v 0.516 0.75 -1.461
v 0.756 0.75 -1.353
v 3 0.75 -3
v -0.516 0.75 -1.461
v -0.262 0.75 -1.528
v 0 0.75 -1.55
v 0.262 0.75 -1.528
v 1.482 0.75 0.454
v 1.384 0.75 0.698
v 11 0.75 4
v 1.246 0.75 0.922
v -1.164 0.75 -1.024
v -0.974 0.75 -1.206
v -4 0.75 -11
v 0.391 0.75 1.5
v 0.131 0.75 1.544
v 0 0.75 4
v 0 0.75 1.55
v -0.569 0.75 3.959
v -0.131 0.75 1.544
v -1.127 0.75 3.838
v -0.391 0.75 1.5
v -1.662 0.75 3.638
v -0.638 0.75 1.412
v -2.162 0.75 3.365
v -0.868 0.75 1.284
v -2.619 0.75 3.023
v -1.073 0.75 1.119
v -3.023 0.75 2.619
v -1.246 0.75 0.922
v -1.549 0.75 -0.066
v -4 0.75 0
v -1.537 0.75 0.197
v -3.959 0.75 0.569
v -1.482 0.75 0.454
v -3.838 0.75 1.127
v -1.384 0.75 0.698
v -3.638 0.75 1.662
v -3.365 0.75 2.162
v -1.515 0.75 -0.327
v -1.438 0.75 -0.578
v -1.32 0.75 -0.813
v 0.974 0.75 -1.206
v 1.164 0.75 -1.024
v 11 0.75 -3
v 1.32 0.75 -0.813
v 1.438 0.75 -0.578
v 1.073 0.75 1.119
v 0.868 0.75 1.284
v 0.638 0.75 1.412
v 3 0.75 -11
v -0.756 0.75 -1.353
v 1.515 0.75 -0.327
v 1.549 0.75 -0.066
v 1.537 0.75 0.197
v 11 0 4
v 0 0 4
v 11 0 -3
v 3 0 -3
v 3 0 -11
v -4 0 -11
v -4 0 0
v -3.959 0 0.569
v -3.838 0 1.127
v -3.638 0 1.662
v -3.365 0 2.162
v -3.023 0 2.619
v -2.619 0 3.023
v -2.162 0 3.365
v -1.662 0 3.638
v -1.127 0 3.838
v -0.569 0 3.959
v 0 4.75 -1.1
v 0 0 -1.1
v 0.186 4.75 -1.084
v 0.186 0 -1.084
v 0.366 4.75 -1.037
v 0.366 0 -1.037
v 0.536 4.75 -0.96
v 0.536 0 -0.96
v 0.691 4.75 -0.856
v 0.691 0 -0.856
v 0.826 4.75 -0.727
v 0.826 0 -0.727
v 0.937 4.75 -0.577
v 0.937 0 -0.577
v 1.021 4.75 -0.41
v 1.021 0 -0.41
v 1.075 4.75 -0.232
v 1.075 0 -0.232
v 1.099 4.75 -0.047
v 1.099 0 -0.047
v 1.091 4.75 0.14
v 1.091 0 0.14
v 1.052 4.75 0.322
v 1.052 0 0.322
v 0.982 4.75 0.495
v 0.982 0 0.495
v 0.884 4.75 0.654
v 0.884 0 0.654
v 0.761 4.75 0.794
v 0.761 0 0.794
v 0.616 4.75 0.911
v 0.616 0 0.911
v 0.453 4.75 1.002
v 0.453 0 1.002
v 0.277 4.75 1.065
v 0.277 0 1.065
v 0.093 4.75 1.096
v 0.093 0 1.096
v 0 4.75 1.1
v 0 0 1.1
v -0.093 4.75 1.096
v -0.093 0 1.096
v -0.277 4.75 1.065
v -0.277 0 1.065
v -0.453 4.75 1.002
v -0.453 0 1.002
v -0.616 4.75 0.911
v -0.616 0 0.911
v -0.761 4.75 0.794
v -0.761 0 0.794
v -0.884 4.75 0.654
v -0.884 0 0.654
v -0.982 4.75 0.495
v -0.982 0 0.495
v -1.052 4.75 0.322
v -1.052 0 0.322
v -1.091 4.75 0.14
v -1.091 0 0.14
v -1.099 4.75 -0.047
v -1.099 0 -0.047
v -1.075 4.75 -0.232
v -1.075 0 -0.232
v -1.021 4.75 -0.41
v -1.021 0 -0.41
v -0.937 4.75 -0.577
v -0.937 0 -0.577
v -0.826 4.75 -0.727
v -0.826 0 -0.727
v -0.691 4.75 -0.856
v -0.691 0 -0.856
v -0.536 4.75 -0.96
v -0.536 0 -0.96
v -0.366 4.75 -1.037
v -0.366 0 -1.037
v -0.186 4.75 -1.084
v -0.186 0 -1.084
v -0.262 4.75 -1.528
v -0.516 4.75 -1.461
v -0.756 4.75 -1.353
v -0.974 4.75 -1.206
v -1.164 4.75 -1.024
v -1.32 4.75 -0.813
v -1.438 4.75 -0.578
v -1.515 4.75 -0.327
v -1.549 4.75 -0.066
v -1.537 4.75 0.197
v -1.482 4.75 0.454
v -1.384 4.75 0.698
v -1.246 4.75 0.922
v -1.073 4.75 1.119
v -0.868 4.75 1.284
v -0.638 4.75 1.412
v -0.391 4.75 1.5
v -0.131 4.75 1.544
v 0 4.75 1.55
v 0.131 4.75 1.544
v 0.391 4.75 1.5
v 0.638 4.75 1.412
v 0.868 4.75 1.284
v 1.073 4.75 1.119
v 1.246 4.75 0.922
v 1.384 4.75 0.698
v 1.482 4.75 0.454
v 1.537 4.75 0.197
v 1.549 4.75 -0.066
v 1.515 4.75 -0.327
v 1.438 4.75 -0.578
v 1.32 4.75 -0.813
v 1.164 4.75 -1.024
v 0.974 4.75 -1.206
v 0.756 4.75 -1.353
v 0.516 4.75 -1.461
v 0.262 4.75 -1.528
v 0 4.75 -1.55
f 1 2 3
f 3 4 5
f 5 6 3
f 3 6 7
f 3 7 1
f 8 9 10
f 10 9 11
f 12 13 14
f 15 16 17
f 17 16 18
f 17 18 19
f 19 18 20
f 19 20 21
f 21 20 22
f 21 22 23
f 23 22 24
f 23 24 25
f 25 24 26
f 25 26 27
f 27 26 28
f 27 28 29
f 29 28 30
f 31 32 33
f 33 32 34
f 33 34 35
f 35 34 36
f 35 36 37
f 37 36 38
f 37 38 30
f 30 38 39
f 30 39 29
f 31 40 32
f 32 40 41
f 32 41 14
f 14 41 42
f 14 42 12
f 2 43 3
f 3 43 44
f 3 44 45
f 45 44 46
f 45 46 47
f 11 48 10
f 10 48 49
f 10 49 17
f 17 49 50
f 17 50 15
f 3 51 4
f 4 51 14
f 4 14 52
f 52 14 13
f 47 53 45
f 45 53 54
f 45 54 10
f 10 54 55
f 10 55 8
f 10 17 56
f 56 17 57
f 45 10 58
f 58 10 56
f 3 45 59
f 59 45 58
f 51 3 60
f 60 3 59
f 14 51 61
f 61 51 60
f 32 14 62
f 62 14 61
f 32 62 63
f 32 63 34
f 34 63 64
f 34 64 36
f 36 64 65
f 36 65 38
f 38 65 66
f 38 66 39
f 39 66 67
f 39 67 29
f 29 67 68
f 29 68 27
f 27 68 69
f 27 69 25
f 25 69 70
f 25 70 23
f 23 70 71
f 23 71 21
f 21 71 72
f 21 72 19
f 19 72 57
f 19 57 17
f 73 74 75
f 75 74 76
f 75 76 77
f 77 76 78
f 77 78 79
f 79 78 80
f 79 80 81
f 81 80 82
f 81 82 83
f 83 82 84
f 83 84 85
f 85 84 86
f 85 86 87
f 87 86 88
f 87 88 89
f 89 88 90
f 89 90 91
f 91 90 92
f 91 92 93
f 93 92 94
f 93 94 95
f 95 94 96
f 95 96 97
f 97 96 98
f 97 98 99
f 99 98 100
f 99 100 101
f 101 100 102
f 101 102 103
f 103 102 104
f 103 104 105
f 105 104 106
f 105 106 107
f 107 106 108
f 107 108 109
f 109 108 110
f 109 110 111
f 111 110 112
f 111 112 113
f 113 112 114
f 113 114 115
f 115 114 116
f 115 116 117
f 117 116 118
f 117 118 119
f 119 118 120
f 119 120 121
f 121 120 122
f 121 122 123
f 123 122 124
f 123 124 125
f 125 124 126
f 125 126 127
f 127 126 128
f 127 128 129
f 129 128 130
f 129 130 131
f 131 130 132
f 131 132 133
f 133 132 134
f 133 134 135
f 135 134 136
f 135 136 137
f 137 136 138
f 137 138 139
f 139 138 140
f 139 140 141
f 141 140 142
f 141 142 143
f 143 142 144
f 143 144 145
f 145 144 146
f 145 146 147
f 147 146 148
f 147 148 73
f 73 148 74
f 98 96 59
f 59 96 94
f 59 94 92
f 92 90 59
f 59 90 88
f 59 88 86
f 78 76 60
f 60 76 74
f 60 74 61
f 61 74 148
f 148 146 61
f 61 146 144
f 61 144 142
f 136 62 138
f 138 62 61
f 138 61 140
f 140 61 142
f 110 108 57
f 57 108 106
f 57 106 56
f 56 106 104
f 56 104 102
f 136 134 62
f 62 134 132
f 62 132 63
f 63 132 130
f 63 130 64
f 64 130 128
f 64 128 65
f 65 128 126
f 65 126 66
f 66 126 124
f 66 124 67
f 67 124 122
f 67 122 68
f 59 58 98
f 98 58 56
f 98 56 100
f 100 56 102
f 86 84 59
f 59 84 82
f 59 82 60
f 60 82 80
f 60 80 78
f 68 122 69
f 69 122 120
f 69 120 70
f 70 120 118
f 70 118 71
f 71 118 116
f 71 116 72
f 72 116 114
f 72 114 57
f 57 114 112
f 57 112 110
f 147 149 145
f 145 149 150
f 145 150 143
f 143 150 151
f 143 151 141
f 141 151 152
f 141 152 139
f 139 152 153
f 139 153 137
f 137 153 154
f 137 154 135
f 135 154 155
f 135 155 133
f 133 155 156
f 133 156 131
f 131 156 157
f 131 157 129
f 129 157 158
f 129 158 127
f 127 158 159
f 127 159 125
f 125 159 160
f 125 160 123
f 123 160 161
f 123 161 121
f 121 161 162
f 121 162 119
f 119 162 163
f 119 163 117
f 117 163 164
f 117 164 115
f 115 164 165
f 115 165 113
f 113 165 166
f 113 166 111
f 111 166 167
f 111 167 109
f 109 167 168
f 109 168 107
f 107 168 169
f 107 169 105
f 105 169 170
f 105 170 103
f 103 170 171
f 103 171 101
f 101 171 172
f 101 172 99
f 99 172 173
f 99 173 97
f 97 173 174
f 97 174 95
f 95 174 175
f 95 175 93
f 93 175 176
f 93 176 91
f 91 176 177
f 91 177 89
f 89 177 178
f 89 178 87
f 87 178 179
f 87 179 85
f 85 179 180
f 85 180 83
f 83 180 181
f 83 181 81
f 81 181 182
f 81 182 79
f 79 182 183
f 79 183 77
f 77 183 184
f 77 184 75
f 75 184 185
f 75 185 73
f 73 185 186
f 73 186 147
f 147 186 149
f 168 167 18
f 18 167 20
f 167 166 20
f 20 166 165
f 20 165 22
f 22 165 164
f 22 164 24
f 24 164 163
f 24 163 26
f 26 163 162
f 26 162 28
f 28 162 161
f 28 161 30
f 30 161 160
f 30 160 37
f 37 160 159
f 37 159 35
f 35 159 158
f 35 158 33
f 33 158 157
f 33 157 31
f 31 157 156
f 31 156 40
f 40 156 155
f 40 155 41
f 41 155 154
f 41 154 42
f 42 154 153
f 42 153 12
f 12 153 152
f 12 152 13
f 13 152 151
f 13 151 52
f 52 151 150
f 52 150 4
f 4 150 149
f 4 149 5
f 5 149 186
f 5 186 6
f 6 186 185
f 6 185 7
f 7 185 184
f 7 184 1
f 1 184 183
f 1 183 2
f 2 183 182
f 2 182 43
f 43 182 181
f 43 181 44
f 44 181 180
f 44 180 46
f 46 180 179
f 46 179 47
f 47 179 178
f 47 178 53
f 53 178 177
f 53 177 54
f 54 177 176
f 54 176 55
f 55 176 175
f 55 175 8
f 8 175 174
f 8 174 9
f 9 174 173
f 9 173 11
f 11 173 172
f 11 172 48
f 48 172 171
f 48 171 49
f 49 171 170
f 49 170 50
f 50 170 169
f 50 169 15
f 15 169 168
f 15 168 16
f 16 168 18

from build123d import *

# Parameters (mm, degrees)
SKETCH1_R           = 1.1
BOSS_EXTRUDE1_DEPTH = 0.75
SKETCH2_R           = 1.55
SKETCH2_R_2         = 1.1
BOSS_EXTRUDE2_DEPTH = 4


with BuildPart() as part:
    # Sketch1 → Boss-Extrude1 (new body)
    with BuildSketch(Plane(origin=(0, 0, 0), x_dir=(1, 0, 0), z_dir=(0, 1, 0))):
        with BuildLine():
            Line((11, -3.99967418), (11, 3))
            Line((11, 3), (3, 3))
            Line((3, 3), (3, 11))
            Line((3, 11), (-3.99967418, 11))
            Line((-3.99967418, 11), (-3.99967418, 0))
            ThreePointArc((-3.99967418, 0), (-2.828196736, -2.828196736), (0, -3.99967418))
            Line((0, -3.99967418), (11, -3.99967418))
        make_face()
        with Locations(Location((0, 0, 0), (0, 0, 270))):
            Circle(SKETCH1_R, mode=Mode.SUBTRACT)
    extrude(amount=BOSS_EXTRUDE1_DEPTH)

    # Sketch2 → Boss-Extrude2 (add)
    with BuildSketch(Plane(origin=(0, 0.75, 0), x_dir=(1, 0, 0), z_dir=(0, 1, 0))):
        with Locations(Location((0, 0, 0), (0, 0, 270))):
            Circle(SKETCH2_R)
        with Locations(Location((0, 0, 0), (0, 0, 270))):
            Circle(SKETCH2_R_2, mode=Mode.SUBTRACT)
    extrude(amount=BOSS_EXTRUDE2_DEPTH)


solid = part.part
